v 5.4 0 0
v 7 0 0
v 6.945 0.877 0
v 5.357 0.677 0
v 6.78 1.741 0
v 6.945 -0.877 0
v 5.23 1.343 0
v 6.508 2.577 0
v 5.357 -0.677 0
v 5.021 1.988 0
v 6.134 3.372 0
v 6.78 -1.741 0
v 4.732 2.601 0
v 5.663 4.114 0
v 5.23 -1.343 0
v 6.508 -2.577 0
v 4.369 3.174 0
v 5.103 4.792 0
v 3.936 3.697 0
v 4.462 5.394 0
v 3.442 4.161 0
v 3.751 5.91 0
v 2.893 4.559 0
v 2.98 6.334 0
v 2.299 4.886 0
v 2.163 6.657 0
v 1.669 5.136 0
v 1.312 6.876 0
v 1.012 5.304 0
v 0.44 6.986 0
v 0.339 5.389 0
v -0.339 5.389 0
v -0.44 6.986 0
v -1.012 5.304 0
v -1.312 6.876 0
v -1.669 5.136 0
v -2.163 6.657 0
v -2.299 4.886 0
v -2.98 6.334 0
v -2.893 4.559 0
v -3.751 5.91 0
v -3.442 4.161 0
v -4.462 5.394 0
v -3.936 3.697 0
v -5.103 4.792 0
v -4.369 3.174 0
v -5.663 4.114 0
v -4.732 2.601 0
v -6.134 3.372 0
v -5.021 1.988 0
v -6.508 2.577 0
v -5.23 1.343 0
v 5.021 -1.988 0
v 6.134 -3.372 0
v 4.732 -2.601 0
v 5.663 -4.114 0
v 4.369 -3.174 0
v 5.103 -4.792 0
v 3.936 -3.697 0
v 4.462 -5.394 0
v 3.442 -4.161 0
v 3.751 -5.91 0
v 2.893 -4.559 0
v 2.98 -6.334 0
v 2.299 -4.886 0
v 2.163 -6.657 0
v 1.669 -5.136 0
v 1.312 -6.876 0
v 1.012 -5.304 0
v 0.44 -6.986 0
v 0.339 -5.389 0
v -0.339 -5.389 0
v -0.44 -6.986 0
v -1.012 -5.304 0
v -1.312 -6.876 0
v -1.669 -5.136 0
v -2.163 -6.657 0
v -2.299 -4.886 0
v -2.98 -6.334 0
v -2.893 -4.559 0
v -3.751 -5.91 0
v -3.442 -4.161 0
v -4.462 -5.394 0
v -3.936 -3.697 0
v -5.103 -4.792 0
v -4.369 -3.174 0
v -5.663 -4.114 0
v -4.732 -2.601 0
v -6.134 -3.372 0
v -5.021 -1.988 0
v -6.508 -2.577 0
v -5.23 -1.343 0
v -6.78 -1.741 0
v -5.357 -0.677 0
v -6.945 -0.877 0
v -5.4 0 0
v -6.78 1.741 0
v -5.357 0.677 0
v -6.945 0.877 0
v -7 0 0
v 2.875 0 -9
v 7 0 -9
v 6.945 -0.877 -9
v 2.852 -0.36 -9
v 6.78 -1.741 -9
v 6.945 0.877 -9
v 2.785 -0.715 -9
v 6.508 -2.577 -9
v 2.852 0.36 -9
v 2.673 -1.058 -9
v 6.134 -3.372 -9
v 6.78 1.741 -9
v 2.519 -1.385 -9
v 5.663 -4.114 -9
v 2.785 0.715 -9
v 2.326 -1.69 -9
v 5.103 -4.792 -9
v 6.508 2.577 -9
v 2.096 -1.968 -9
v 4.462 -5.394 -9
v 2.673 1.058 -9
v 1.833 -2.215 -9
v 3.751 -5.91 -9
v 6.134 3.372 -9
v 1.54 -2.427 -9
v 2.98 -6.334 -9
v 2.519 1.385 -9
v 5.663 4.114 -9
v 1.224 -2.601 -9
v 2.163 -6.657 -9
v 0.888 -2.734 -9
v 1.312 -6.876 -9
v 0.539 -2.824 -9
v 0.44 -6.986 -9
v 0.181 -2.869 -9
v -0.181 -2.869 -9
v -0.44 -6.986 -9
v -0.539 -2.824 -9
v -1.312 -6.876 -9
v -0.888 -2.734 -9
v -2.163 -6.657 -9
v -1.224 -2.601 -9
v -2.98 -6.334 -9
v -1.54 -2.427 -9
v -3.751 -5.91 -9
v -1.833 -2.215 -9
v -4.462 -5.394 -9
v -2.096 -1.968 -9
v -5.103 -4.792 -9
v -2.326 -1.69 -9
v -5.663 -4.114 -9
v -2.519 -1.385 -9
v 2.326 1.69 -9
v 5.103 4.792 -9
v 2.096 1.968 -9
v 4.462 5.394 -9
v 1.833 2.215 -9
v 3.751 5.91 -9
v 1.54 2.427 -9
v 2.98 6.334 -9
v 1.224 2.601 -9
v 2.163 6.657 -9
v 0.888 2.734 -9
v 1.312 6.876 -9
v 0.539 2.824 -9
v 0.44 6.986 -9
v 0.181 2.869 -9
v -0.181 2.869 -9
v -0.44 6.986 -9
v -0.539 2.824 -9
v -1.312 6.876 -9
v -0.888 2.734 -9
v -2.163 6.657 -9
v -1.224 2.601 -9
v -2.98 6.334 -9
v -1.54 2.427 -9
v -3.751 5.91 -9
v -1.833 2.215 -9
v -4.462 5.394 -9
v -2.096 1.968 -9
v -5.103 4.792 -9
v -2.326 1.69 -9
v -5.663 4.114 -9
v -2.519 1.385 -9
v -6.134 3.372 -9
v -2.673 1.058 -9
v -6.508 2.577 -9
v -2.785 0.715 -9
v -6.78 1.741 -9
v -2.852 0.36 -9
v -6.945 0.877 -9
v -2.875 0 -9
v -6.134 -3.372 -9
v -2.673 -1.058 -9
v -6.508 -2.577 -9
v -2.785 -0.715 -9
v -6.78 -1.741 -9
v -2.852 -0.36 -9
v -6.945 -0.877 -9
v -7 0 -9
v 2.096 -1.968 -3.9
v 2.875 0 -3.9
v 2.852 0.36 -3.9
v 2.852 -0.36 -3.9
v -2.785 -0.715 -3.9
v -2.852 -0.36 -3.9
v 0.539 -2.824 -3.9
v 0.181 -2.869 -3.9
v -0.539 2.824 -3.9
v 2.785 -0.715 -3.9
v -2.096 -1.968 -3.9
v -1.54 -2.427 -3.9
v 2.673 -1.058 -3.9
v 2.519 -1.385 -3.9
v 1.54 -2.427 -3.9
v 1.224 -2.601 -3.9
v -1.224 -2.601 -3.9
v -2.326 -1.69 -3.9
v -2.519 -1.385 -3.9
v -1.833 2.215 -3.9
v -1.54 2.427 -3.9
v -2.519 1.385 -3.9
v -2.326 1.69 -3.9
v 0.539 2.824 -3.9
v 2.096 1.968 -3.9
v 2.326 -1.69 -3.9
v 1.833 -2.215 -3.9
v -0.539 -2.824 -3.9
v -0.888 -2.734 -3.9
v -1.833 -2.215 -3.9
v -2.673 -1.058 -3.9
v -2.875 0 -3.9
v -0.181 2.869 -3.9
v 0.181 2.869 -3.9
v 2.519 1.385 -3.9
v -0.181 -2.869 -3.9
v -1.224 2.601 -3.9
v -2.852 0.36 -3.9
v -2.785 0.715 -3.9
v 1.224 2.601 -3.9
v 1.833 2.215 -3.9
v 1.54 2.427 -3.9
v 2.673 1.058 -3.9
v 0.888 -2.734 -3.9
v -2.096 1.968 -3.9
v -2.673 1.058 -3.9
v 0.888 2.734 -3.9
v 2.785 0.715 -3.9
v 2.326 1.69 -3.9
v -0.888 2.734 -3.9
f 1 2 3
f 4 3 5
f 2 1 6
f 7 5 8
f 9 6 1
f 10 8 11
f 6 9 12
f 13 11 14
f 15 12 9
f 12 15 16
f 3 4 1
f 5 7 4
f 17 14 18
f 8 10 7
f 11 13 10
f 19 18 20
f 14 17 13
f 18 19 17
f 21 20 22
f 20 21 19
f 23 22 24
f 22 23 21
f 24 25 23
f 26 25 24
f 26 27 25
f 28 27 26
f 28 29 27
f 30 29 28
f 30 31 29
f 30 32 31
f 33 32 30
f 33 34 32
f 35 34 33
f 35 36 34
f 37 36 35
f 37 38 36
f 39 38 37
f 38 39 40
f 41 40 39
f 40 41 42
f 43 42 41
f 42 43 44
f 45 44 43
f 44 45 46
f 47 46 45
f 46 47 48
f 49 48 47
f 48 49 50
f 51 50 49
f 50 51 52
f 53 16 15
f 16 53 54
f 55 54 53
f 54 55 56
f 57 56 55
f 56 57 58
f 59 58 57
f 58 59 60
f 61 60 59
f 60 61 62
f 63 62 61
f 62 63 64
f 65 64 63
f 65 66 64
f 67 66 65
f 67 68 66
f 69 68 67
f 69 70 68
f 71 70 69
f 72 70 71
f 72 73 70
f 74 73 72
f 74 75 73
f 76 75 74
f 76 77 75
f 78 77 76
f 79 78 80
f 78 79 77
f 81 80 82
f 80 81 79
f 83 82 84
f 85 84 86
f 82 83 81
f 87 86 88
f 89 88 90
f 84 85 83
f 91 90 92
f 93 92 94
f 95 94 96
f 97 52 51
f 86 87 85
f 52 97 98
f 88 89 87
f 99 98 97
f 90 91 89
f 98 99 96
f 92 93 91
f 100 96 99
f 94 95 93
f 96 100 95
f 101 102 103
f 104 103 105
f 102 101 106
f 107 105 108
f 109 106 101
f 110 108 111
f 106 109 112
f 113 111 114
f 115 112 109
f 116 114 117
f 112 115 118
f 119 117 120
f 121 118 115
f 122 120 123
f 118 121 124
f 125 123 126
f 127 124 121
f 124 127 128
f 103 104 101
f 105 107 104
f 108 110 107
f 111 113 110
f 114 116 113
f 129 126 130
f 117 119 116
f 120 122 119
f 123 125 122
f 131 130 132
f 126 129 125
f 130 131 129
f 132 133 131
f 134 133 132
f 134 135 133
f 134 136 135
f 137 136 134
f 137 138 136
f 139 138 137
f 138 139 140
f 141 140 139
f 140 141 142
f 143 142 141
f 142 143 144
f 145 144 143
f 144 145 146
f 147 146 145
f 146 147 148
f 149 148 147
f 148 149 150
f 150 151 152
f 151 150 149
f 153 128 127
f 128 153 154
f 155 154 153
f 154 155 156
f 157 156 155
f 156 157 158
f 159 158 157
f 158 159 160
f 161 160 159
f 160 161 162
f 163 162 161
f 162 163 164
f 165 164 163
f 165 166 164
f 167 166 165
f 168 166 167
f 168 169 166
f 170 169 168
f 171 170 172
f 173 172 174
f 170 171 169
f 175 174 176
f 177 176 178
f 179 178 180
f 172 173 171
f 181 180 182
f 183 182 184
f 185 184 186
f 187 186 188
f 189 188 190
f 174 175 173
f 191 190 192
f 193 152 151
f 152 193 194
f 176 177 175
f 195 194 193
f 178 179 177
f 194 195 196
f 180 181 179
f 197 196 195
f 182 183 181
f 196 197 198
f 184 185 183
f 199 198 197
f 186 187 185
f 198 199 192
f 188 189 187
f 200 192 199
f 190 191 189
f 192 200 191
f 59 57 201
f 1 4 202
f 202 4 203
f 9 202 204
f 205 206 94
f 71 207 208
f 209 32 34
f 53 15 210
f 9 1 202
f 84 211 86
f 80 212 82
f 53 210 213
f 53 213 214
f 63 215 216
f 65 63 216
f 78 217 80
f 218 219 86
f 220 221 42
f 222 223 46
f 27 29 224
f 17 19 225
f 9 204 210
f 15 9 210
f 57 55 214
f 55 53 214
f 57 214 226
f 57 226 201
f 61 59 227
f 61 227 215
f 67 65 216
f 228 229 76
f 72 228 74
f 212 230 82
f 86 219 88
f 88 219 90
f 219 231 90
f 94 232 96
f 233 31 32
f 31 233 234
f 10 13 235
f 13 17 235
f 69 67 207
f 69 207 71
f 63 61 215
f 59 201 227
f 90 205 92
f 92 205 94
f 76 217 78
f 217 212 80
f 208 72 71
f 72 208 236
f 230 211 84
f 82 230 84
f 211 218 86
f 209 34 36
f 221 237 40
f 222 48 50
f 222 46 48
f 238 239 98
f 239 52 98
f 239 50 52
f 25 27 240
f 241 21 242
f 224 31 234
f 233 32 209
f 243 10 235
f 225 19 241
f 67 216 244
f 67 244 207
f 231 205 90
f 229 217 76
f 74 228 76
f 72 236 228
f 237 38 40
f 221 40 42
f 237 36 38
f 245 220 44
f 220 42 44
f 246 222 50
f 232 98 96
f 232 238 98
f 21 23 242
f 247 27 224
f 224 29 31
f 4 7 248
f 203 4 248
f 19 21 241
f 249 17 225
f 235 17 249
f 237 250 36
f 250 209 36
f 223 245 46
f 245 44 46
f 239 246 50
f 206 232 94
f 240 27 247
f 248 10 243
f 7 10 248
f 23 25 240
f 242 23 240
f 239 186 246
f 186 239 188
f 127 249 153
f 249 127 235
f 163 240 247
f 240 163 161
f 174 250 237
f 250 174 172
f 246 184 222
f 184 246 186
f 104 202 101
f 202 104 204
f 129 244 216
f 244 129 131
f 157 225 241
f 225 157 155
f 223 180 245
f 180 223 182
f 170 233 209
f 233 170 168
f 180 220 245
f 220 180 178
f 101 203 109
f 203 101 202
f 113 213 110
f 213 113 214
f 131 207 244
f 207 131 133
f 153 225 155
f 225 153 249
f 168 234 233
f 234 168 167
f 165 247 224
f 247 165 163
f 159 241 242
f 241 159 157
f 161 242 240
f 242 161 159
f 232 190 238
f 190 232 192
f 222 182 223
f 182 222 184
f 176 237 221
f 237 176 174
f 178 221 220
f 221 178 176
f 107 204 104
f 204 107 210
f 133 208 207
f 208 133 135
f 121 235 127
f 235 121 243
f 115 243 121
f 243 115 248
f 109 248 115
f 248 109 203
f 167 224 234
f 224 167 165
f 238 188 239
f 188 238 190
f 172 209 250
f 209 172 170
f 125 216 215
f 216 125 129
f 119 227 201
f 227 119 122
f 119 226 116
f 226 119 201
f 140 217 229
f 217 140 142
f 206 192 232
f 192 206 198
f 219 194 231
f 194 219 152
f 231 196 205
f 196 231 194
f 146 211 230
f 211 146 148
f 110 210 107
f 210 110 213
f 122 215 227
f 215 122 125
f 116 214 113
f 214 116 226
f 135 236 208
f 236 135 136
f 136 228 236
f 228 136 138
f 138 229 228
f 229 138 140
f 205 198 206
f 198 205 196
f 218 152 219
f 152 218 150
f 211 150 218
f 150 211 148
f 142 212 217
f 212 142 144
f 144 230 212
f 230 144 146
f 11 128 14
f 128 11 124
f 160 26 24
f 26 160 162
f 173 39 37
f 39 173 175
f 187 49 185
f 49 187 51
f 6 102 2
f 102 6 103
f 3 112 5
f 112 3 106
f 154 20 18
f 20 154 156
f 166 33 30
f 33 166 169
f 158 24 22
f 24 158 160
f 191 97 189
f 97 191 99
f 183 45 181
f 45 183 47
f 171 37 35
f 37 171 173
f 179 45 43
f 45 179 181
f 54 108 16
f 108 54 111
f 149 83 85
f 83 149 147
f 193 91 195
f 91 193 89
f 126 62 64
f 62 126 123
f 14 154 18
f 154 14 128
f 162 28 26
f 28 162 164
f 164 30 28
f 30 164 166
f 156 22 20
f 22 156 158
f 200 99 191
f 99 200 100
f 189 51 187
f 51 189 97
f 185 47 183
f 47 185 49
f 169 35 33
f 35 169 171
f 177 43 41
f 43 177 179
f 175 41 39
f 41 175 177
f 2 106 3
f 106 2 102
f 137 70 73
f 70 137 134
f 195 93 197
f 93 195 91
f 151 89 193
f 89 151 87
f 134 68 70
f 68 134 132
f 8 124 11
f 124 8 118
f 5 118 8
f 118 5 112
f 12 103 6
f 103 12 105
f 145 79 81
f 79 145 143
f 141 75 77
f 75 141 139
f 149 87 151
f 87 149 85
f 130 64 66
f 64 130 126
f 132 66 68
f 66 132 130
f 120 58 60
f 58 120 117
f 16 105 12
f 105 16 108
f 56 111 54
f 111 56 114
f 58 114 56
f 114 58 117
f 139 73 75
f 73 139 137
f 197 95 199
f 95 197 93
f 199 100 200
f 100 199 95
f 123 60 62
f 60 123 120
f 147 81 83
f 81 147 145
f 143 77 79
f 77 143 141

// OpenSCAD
$fn = 50;


difference() {
	union() {
		translate(v = [0, 0, -9.0000000000]) {
			cylinder(h = 9, r = 7.0000000000);
		}
	}
	union() {
		translate(v = [0, 0, 0]) {
			rotate(a = [0, 0, 0]) {
				difference() {
					union() {
						translate(v = [0, 0, -9.0000000000]) {
							cylinder(h = 9, r = 2.6000000000);
						}
						translate(v = [0, 0, -3.9000000000]) {
							cylinder(h = 3.9000000000, r1 = 2.8750000000, r2 = 5.4000000000);
						}
						translate(v = [0, 0, -9.0000000000]) {
							cylinder(h = 9, r = 2.8750000000);
						}
						translate(v = [0, 0, -9.0000000000]) {
							cylinder(h = 9, r = 2.6000000000);
						}
					}
					union();
				}
			}
		}
	}
}
